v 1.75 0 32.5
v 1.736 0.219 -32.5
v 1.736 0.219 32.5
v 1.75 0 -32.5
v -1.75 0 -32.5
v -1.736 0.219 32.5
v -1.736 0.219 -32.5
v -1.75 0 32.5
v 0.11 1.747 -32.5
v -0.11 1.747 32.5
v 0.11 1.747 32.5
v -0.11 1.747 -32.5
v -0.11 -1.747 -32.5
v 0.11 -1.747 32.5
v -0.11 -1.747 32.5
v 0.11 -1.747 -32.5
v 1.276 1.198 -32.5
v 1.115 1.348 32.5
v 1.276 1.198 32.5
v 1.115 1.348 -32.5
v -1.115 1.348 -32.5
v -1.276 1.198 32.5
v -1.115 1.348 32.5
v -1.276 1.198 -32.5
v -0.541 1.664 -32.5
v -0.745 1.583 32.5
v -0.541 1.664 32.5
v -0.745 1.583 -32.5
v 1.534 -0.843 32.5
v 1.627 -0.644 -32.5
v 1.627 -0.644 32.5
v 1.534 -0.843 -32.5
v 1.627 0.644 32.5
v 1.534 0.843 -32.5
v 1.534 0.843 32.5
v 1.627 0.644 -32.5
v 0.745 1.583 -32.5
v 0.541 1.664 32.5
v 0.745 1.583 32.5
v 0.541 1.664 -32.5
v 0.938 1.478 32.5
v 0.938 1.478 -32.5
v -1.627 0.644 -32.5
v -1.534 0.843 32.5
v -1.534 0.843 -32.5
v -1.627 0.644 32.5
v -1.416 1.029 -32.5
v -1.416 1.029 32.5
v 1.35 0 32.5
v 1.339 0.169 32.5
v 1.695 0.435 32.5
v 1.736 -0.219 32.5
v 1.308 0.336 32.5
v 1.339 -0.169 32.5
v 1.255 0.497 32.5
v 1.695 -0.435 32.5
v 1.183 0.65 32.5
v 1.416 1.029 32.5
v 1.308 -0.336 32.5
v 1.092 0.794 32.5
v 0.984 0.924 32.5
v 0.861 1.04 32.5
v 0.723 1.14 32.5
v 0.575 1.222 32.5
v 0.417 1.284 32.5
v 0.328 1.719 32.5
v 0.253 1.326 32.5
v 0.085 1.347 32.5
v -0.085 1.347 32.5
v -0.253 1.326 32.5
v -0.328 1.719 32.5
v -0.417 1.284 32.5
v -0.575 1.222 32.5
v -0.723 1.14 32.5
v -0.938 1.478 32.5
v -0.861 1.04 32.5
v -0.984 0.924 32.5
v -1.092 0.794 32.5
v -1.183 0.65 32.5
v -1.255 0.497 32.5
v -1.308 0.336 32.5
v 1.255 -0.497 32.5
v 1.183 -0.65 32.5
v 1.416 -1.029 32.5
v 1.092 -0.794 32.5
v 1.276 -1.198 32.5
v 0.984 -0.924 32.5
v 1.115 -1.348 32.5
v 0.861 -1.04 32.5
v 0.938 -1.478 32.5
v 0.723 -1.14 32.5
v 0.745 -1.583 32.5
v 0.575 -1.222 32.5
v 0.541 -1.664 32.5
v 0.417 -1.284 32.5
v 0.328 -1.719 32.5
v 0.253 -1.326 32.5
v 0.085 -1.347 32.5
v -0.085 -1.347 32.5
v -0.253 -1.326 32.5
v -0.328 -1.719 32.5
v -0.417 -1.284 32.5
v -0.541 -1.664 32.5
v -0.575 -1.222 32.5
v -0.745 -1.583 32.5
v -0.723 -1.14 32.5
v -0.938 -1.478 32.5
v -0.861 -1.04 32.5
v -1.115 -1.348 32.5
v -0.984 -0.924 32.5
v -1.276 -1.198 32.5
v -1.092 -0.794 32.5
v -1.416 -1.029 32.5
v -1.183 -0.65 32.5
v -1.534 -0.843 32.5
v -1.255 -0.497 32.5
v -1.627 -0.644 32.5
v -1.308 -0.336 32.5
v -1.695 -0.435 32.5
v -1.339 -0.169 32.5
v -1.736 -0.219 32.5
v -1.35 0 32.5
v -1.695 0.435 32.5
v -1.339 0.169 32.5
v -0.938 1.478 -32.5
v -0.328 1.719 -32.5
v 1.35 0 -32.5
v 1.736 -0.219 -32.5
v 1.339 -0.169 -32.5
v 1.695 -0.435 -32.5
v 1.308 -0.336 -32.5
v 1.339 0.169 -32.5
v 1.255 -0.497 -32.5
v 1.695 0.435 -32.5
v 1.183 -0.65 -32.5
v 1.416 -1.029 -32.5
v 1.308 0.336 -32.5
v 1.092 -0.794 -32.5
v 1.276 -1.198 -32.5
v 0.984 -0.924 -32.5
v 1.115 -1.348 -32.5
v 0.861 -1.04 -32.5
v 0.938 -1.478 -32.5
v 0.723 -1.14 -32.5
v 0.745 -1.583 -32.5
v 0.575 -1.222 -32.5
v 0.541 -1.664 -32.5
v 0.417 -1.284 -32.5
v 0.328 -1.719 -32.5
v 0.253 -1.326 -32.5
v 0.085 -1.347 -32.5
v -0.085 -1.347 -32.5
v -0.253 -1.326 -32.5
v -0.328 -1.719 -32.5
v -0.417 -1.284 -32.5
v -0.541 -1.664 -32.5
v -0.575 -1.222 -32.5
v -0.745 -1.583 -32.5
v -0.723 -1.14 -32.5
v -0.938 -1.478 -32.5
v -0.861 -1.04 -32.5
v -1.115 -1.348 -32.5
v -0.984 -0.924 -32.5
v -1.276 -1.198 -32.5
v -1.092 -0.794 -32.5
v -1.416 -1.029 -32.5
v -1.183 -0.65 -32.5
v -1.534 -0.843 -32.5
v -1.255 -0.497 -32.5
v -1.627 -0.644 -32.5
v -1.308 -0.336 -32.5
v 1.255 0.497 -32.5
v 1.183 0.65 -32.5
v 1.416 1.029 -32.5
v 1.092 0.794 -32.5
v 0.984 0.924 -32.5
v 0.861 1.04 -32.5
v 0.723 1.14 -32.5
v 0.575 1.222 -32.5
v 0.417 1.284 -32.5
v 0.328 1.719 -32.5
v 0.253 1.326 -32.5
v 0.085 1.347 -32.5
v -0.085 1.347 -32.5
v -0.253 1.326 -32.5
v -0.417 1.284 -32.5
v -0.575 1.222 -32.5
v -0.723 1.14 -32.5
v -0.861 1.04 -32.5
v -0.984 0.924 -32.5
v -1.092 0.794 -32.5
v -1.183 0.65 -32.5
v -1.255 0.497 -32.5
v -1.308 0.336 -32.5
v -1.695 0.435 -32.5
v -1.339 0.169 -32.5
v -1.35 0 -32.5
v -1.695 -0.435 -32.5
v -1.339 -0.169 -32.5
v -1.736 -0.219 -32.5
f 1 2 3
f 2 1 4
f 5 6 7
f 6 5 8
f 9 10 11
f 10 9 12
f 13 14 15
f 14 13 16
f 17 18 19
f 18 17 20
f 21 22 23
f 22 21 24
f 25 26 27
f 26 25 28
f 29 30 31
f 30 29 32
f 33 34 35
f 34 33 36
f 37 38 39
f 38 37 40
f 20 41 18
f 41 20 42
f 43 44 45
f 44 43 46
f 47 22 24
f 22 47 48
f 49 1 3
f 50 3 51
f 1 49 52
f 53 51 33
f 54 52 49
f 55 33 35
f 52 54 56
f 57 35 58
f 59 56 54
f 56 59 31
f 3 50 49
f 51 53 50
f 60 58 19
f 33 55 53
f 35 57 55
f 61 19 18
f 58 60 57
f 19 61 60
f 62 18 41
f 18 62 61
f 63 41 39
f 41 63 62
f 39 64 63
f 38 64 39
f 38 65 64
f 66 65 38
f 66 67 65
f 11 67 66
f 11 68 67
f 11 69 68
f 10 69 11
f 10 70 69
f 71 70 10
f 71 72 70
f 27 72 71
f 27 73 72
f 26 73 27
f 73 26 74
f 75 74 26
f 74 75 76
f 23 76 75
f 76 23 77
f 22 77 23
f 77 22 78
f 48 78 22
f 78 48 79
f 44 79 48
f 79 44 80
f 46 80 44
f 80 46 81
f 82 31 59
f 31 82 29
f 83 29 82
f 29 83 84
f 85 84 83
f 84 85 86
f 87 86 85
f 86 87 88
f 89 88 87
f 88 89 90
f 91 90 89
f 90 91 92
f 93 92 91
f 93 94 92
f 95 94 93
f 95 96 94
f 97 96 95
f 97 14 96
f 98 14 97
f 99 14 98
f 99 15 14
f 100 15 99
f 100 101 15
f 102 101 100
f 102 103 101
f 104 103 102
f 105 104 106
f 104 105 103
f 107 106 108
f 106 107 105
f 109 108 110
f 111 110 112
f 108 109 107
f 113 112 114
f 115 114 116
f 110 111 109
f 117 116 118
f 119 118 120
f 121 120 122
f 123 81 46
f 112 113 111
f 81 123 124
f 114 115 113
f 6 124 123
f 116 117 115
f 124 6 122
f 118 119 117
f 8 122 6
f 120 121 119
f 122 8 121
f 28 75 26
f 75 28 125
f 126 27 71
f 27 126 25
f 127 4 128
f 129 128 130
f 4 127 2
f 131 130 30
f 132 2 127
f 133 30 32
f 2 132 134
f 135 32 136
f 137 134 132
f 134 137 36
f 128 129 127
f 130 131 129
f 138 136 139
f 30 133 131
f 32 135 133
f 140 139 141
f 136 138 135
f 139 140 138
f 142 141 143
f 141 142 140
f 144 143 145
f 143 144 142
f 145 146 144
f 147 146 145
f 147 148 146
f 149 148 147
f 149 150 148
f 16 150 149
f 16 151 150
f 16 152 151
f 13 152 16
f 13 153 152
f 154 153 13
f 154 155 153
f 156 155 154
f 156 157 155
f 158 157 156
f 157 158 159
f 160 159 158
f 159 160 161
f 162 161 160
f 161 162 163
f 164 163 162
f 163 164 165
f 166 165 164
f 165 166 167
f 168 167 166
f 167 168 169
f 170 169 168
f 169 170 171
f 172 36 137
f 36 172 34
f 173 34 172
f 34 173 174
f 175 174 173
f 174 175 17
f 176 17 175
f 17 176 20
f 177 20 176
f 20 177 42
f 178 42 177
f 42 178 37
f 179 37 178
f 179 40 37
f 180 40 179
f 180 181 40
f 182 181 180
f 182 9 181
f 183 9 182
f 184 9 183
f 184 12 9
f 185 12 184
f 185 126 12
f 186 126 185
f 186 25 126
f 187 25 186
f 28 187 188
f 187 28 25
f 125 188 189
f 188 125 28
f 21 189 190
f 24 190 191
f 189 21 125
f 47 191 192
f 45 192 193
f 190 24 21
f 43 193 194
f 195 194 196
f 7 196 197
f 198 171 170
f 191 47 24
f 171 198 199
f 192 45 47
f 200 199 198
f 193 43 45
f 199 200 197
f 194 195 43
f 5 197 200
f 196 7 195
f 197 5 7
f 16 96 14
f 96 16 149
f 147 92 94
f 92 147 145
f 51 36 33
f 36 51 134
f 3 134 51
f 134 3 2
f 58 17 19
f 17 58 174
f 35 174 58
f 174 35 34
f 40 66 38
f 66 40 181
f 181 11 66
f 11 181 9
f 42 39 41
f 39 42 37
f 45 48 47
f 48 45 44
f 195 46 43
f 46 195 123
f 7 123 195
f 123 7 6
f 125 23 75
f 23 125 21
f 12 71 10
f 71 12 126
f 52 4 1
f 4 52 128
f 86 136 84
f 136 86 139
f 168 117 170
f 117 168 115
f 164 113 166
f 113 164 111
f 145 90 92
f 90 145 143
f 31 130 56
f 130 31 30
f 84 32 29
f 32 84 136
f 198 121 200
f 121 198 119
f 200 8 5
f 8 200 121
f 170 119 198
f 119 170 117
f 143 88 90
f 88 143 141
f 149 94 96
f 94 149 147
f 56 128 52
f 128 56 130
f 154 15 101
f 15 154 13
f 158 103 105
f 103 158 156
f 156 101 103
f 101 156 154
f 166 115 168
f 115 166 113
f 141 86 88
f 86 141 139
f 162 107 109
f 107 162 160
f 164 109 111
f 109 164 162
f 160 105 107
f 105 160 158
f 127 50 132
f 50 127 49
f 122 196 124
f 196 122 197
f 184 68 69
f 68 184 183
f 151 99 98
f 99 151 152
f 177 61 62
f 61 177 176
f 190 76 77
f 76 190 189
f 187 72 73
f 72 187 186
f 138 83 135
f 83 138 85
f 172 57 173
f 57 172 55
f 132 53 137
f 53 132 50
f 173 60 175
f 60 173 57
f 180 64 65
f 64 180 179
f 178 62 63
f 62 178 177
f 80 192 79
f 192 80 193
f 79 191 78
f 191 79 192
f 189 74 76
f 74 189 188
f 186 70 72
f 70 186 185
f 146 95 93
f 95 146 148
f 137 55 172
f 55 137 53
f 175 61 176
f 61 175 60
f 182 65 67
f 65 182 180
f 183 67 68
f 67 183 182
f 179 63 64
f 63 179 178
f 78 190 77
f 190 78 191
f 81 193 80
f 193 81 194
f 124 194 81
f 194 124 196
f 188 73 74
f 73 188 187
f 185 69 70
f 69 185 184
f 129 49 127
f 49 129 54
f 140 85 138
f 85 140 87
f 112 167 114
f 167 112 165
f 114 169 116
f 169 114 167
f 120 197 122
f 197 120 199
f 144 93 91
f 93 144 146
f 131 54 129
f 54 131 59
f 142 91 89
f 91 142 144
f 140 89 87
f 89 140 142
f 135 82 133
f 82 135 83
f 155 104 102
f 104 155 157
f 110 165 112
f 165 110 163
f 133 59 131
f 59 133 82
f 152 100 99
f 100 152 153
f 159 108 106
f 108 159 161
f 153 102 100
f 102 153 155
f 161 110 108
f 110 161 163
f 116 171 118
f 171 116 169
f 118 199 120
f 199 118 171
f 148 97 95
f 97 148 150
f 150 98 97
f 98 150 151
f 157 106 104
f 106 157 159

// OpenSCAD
$fn = 50;


difference() {
	union() {
		translate(v = [0, 0, -32.5000000000]) {
			cylinder(h = 65, r = 1.7500000000);
		}
	}
	union() {
		translate(v = [0, 0, -100.0000000000]) {
			cylinder(h = 200, r = 1.3500000000);
		}
	}
}
